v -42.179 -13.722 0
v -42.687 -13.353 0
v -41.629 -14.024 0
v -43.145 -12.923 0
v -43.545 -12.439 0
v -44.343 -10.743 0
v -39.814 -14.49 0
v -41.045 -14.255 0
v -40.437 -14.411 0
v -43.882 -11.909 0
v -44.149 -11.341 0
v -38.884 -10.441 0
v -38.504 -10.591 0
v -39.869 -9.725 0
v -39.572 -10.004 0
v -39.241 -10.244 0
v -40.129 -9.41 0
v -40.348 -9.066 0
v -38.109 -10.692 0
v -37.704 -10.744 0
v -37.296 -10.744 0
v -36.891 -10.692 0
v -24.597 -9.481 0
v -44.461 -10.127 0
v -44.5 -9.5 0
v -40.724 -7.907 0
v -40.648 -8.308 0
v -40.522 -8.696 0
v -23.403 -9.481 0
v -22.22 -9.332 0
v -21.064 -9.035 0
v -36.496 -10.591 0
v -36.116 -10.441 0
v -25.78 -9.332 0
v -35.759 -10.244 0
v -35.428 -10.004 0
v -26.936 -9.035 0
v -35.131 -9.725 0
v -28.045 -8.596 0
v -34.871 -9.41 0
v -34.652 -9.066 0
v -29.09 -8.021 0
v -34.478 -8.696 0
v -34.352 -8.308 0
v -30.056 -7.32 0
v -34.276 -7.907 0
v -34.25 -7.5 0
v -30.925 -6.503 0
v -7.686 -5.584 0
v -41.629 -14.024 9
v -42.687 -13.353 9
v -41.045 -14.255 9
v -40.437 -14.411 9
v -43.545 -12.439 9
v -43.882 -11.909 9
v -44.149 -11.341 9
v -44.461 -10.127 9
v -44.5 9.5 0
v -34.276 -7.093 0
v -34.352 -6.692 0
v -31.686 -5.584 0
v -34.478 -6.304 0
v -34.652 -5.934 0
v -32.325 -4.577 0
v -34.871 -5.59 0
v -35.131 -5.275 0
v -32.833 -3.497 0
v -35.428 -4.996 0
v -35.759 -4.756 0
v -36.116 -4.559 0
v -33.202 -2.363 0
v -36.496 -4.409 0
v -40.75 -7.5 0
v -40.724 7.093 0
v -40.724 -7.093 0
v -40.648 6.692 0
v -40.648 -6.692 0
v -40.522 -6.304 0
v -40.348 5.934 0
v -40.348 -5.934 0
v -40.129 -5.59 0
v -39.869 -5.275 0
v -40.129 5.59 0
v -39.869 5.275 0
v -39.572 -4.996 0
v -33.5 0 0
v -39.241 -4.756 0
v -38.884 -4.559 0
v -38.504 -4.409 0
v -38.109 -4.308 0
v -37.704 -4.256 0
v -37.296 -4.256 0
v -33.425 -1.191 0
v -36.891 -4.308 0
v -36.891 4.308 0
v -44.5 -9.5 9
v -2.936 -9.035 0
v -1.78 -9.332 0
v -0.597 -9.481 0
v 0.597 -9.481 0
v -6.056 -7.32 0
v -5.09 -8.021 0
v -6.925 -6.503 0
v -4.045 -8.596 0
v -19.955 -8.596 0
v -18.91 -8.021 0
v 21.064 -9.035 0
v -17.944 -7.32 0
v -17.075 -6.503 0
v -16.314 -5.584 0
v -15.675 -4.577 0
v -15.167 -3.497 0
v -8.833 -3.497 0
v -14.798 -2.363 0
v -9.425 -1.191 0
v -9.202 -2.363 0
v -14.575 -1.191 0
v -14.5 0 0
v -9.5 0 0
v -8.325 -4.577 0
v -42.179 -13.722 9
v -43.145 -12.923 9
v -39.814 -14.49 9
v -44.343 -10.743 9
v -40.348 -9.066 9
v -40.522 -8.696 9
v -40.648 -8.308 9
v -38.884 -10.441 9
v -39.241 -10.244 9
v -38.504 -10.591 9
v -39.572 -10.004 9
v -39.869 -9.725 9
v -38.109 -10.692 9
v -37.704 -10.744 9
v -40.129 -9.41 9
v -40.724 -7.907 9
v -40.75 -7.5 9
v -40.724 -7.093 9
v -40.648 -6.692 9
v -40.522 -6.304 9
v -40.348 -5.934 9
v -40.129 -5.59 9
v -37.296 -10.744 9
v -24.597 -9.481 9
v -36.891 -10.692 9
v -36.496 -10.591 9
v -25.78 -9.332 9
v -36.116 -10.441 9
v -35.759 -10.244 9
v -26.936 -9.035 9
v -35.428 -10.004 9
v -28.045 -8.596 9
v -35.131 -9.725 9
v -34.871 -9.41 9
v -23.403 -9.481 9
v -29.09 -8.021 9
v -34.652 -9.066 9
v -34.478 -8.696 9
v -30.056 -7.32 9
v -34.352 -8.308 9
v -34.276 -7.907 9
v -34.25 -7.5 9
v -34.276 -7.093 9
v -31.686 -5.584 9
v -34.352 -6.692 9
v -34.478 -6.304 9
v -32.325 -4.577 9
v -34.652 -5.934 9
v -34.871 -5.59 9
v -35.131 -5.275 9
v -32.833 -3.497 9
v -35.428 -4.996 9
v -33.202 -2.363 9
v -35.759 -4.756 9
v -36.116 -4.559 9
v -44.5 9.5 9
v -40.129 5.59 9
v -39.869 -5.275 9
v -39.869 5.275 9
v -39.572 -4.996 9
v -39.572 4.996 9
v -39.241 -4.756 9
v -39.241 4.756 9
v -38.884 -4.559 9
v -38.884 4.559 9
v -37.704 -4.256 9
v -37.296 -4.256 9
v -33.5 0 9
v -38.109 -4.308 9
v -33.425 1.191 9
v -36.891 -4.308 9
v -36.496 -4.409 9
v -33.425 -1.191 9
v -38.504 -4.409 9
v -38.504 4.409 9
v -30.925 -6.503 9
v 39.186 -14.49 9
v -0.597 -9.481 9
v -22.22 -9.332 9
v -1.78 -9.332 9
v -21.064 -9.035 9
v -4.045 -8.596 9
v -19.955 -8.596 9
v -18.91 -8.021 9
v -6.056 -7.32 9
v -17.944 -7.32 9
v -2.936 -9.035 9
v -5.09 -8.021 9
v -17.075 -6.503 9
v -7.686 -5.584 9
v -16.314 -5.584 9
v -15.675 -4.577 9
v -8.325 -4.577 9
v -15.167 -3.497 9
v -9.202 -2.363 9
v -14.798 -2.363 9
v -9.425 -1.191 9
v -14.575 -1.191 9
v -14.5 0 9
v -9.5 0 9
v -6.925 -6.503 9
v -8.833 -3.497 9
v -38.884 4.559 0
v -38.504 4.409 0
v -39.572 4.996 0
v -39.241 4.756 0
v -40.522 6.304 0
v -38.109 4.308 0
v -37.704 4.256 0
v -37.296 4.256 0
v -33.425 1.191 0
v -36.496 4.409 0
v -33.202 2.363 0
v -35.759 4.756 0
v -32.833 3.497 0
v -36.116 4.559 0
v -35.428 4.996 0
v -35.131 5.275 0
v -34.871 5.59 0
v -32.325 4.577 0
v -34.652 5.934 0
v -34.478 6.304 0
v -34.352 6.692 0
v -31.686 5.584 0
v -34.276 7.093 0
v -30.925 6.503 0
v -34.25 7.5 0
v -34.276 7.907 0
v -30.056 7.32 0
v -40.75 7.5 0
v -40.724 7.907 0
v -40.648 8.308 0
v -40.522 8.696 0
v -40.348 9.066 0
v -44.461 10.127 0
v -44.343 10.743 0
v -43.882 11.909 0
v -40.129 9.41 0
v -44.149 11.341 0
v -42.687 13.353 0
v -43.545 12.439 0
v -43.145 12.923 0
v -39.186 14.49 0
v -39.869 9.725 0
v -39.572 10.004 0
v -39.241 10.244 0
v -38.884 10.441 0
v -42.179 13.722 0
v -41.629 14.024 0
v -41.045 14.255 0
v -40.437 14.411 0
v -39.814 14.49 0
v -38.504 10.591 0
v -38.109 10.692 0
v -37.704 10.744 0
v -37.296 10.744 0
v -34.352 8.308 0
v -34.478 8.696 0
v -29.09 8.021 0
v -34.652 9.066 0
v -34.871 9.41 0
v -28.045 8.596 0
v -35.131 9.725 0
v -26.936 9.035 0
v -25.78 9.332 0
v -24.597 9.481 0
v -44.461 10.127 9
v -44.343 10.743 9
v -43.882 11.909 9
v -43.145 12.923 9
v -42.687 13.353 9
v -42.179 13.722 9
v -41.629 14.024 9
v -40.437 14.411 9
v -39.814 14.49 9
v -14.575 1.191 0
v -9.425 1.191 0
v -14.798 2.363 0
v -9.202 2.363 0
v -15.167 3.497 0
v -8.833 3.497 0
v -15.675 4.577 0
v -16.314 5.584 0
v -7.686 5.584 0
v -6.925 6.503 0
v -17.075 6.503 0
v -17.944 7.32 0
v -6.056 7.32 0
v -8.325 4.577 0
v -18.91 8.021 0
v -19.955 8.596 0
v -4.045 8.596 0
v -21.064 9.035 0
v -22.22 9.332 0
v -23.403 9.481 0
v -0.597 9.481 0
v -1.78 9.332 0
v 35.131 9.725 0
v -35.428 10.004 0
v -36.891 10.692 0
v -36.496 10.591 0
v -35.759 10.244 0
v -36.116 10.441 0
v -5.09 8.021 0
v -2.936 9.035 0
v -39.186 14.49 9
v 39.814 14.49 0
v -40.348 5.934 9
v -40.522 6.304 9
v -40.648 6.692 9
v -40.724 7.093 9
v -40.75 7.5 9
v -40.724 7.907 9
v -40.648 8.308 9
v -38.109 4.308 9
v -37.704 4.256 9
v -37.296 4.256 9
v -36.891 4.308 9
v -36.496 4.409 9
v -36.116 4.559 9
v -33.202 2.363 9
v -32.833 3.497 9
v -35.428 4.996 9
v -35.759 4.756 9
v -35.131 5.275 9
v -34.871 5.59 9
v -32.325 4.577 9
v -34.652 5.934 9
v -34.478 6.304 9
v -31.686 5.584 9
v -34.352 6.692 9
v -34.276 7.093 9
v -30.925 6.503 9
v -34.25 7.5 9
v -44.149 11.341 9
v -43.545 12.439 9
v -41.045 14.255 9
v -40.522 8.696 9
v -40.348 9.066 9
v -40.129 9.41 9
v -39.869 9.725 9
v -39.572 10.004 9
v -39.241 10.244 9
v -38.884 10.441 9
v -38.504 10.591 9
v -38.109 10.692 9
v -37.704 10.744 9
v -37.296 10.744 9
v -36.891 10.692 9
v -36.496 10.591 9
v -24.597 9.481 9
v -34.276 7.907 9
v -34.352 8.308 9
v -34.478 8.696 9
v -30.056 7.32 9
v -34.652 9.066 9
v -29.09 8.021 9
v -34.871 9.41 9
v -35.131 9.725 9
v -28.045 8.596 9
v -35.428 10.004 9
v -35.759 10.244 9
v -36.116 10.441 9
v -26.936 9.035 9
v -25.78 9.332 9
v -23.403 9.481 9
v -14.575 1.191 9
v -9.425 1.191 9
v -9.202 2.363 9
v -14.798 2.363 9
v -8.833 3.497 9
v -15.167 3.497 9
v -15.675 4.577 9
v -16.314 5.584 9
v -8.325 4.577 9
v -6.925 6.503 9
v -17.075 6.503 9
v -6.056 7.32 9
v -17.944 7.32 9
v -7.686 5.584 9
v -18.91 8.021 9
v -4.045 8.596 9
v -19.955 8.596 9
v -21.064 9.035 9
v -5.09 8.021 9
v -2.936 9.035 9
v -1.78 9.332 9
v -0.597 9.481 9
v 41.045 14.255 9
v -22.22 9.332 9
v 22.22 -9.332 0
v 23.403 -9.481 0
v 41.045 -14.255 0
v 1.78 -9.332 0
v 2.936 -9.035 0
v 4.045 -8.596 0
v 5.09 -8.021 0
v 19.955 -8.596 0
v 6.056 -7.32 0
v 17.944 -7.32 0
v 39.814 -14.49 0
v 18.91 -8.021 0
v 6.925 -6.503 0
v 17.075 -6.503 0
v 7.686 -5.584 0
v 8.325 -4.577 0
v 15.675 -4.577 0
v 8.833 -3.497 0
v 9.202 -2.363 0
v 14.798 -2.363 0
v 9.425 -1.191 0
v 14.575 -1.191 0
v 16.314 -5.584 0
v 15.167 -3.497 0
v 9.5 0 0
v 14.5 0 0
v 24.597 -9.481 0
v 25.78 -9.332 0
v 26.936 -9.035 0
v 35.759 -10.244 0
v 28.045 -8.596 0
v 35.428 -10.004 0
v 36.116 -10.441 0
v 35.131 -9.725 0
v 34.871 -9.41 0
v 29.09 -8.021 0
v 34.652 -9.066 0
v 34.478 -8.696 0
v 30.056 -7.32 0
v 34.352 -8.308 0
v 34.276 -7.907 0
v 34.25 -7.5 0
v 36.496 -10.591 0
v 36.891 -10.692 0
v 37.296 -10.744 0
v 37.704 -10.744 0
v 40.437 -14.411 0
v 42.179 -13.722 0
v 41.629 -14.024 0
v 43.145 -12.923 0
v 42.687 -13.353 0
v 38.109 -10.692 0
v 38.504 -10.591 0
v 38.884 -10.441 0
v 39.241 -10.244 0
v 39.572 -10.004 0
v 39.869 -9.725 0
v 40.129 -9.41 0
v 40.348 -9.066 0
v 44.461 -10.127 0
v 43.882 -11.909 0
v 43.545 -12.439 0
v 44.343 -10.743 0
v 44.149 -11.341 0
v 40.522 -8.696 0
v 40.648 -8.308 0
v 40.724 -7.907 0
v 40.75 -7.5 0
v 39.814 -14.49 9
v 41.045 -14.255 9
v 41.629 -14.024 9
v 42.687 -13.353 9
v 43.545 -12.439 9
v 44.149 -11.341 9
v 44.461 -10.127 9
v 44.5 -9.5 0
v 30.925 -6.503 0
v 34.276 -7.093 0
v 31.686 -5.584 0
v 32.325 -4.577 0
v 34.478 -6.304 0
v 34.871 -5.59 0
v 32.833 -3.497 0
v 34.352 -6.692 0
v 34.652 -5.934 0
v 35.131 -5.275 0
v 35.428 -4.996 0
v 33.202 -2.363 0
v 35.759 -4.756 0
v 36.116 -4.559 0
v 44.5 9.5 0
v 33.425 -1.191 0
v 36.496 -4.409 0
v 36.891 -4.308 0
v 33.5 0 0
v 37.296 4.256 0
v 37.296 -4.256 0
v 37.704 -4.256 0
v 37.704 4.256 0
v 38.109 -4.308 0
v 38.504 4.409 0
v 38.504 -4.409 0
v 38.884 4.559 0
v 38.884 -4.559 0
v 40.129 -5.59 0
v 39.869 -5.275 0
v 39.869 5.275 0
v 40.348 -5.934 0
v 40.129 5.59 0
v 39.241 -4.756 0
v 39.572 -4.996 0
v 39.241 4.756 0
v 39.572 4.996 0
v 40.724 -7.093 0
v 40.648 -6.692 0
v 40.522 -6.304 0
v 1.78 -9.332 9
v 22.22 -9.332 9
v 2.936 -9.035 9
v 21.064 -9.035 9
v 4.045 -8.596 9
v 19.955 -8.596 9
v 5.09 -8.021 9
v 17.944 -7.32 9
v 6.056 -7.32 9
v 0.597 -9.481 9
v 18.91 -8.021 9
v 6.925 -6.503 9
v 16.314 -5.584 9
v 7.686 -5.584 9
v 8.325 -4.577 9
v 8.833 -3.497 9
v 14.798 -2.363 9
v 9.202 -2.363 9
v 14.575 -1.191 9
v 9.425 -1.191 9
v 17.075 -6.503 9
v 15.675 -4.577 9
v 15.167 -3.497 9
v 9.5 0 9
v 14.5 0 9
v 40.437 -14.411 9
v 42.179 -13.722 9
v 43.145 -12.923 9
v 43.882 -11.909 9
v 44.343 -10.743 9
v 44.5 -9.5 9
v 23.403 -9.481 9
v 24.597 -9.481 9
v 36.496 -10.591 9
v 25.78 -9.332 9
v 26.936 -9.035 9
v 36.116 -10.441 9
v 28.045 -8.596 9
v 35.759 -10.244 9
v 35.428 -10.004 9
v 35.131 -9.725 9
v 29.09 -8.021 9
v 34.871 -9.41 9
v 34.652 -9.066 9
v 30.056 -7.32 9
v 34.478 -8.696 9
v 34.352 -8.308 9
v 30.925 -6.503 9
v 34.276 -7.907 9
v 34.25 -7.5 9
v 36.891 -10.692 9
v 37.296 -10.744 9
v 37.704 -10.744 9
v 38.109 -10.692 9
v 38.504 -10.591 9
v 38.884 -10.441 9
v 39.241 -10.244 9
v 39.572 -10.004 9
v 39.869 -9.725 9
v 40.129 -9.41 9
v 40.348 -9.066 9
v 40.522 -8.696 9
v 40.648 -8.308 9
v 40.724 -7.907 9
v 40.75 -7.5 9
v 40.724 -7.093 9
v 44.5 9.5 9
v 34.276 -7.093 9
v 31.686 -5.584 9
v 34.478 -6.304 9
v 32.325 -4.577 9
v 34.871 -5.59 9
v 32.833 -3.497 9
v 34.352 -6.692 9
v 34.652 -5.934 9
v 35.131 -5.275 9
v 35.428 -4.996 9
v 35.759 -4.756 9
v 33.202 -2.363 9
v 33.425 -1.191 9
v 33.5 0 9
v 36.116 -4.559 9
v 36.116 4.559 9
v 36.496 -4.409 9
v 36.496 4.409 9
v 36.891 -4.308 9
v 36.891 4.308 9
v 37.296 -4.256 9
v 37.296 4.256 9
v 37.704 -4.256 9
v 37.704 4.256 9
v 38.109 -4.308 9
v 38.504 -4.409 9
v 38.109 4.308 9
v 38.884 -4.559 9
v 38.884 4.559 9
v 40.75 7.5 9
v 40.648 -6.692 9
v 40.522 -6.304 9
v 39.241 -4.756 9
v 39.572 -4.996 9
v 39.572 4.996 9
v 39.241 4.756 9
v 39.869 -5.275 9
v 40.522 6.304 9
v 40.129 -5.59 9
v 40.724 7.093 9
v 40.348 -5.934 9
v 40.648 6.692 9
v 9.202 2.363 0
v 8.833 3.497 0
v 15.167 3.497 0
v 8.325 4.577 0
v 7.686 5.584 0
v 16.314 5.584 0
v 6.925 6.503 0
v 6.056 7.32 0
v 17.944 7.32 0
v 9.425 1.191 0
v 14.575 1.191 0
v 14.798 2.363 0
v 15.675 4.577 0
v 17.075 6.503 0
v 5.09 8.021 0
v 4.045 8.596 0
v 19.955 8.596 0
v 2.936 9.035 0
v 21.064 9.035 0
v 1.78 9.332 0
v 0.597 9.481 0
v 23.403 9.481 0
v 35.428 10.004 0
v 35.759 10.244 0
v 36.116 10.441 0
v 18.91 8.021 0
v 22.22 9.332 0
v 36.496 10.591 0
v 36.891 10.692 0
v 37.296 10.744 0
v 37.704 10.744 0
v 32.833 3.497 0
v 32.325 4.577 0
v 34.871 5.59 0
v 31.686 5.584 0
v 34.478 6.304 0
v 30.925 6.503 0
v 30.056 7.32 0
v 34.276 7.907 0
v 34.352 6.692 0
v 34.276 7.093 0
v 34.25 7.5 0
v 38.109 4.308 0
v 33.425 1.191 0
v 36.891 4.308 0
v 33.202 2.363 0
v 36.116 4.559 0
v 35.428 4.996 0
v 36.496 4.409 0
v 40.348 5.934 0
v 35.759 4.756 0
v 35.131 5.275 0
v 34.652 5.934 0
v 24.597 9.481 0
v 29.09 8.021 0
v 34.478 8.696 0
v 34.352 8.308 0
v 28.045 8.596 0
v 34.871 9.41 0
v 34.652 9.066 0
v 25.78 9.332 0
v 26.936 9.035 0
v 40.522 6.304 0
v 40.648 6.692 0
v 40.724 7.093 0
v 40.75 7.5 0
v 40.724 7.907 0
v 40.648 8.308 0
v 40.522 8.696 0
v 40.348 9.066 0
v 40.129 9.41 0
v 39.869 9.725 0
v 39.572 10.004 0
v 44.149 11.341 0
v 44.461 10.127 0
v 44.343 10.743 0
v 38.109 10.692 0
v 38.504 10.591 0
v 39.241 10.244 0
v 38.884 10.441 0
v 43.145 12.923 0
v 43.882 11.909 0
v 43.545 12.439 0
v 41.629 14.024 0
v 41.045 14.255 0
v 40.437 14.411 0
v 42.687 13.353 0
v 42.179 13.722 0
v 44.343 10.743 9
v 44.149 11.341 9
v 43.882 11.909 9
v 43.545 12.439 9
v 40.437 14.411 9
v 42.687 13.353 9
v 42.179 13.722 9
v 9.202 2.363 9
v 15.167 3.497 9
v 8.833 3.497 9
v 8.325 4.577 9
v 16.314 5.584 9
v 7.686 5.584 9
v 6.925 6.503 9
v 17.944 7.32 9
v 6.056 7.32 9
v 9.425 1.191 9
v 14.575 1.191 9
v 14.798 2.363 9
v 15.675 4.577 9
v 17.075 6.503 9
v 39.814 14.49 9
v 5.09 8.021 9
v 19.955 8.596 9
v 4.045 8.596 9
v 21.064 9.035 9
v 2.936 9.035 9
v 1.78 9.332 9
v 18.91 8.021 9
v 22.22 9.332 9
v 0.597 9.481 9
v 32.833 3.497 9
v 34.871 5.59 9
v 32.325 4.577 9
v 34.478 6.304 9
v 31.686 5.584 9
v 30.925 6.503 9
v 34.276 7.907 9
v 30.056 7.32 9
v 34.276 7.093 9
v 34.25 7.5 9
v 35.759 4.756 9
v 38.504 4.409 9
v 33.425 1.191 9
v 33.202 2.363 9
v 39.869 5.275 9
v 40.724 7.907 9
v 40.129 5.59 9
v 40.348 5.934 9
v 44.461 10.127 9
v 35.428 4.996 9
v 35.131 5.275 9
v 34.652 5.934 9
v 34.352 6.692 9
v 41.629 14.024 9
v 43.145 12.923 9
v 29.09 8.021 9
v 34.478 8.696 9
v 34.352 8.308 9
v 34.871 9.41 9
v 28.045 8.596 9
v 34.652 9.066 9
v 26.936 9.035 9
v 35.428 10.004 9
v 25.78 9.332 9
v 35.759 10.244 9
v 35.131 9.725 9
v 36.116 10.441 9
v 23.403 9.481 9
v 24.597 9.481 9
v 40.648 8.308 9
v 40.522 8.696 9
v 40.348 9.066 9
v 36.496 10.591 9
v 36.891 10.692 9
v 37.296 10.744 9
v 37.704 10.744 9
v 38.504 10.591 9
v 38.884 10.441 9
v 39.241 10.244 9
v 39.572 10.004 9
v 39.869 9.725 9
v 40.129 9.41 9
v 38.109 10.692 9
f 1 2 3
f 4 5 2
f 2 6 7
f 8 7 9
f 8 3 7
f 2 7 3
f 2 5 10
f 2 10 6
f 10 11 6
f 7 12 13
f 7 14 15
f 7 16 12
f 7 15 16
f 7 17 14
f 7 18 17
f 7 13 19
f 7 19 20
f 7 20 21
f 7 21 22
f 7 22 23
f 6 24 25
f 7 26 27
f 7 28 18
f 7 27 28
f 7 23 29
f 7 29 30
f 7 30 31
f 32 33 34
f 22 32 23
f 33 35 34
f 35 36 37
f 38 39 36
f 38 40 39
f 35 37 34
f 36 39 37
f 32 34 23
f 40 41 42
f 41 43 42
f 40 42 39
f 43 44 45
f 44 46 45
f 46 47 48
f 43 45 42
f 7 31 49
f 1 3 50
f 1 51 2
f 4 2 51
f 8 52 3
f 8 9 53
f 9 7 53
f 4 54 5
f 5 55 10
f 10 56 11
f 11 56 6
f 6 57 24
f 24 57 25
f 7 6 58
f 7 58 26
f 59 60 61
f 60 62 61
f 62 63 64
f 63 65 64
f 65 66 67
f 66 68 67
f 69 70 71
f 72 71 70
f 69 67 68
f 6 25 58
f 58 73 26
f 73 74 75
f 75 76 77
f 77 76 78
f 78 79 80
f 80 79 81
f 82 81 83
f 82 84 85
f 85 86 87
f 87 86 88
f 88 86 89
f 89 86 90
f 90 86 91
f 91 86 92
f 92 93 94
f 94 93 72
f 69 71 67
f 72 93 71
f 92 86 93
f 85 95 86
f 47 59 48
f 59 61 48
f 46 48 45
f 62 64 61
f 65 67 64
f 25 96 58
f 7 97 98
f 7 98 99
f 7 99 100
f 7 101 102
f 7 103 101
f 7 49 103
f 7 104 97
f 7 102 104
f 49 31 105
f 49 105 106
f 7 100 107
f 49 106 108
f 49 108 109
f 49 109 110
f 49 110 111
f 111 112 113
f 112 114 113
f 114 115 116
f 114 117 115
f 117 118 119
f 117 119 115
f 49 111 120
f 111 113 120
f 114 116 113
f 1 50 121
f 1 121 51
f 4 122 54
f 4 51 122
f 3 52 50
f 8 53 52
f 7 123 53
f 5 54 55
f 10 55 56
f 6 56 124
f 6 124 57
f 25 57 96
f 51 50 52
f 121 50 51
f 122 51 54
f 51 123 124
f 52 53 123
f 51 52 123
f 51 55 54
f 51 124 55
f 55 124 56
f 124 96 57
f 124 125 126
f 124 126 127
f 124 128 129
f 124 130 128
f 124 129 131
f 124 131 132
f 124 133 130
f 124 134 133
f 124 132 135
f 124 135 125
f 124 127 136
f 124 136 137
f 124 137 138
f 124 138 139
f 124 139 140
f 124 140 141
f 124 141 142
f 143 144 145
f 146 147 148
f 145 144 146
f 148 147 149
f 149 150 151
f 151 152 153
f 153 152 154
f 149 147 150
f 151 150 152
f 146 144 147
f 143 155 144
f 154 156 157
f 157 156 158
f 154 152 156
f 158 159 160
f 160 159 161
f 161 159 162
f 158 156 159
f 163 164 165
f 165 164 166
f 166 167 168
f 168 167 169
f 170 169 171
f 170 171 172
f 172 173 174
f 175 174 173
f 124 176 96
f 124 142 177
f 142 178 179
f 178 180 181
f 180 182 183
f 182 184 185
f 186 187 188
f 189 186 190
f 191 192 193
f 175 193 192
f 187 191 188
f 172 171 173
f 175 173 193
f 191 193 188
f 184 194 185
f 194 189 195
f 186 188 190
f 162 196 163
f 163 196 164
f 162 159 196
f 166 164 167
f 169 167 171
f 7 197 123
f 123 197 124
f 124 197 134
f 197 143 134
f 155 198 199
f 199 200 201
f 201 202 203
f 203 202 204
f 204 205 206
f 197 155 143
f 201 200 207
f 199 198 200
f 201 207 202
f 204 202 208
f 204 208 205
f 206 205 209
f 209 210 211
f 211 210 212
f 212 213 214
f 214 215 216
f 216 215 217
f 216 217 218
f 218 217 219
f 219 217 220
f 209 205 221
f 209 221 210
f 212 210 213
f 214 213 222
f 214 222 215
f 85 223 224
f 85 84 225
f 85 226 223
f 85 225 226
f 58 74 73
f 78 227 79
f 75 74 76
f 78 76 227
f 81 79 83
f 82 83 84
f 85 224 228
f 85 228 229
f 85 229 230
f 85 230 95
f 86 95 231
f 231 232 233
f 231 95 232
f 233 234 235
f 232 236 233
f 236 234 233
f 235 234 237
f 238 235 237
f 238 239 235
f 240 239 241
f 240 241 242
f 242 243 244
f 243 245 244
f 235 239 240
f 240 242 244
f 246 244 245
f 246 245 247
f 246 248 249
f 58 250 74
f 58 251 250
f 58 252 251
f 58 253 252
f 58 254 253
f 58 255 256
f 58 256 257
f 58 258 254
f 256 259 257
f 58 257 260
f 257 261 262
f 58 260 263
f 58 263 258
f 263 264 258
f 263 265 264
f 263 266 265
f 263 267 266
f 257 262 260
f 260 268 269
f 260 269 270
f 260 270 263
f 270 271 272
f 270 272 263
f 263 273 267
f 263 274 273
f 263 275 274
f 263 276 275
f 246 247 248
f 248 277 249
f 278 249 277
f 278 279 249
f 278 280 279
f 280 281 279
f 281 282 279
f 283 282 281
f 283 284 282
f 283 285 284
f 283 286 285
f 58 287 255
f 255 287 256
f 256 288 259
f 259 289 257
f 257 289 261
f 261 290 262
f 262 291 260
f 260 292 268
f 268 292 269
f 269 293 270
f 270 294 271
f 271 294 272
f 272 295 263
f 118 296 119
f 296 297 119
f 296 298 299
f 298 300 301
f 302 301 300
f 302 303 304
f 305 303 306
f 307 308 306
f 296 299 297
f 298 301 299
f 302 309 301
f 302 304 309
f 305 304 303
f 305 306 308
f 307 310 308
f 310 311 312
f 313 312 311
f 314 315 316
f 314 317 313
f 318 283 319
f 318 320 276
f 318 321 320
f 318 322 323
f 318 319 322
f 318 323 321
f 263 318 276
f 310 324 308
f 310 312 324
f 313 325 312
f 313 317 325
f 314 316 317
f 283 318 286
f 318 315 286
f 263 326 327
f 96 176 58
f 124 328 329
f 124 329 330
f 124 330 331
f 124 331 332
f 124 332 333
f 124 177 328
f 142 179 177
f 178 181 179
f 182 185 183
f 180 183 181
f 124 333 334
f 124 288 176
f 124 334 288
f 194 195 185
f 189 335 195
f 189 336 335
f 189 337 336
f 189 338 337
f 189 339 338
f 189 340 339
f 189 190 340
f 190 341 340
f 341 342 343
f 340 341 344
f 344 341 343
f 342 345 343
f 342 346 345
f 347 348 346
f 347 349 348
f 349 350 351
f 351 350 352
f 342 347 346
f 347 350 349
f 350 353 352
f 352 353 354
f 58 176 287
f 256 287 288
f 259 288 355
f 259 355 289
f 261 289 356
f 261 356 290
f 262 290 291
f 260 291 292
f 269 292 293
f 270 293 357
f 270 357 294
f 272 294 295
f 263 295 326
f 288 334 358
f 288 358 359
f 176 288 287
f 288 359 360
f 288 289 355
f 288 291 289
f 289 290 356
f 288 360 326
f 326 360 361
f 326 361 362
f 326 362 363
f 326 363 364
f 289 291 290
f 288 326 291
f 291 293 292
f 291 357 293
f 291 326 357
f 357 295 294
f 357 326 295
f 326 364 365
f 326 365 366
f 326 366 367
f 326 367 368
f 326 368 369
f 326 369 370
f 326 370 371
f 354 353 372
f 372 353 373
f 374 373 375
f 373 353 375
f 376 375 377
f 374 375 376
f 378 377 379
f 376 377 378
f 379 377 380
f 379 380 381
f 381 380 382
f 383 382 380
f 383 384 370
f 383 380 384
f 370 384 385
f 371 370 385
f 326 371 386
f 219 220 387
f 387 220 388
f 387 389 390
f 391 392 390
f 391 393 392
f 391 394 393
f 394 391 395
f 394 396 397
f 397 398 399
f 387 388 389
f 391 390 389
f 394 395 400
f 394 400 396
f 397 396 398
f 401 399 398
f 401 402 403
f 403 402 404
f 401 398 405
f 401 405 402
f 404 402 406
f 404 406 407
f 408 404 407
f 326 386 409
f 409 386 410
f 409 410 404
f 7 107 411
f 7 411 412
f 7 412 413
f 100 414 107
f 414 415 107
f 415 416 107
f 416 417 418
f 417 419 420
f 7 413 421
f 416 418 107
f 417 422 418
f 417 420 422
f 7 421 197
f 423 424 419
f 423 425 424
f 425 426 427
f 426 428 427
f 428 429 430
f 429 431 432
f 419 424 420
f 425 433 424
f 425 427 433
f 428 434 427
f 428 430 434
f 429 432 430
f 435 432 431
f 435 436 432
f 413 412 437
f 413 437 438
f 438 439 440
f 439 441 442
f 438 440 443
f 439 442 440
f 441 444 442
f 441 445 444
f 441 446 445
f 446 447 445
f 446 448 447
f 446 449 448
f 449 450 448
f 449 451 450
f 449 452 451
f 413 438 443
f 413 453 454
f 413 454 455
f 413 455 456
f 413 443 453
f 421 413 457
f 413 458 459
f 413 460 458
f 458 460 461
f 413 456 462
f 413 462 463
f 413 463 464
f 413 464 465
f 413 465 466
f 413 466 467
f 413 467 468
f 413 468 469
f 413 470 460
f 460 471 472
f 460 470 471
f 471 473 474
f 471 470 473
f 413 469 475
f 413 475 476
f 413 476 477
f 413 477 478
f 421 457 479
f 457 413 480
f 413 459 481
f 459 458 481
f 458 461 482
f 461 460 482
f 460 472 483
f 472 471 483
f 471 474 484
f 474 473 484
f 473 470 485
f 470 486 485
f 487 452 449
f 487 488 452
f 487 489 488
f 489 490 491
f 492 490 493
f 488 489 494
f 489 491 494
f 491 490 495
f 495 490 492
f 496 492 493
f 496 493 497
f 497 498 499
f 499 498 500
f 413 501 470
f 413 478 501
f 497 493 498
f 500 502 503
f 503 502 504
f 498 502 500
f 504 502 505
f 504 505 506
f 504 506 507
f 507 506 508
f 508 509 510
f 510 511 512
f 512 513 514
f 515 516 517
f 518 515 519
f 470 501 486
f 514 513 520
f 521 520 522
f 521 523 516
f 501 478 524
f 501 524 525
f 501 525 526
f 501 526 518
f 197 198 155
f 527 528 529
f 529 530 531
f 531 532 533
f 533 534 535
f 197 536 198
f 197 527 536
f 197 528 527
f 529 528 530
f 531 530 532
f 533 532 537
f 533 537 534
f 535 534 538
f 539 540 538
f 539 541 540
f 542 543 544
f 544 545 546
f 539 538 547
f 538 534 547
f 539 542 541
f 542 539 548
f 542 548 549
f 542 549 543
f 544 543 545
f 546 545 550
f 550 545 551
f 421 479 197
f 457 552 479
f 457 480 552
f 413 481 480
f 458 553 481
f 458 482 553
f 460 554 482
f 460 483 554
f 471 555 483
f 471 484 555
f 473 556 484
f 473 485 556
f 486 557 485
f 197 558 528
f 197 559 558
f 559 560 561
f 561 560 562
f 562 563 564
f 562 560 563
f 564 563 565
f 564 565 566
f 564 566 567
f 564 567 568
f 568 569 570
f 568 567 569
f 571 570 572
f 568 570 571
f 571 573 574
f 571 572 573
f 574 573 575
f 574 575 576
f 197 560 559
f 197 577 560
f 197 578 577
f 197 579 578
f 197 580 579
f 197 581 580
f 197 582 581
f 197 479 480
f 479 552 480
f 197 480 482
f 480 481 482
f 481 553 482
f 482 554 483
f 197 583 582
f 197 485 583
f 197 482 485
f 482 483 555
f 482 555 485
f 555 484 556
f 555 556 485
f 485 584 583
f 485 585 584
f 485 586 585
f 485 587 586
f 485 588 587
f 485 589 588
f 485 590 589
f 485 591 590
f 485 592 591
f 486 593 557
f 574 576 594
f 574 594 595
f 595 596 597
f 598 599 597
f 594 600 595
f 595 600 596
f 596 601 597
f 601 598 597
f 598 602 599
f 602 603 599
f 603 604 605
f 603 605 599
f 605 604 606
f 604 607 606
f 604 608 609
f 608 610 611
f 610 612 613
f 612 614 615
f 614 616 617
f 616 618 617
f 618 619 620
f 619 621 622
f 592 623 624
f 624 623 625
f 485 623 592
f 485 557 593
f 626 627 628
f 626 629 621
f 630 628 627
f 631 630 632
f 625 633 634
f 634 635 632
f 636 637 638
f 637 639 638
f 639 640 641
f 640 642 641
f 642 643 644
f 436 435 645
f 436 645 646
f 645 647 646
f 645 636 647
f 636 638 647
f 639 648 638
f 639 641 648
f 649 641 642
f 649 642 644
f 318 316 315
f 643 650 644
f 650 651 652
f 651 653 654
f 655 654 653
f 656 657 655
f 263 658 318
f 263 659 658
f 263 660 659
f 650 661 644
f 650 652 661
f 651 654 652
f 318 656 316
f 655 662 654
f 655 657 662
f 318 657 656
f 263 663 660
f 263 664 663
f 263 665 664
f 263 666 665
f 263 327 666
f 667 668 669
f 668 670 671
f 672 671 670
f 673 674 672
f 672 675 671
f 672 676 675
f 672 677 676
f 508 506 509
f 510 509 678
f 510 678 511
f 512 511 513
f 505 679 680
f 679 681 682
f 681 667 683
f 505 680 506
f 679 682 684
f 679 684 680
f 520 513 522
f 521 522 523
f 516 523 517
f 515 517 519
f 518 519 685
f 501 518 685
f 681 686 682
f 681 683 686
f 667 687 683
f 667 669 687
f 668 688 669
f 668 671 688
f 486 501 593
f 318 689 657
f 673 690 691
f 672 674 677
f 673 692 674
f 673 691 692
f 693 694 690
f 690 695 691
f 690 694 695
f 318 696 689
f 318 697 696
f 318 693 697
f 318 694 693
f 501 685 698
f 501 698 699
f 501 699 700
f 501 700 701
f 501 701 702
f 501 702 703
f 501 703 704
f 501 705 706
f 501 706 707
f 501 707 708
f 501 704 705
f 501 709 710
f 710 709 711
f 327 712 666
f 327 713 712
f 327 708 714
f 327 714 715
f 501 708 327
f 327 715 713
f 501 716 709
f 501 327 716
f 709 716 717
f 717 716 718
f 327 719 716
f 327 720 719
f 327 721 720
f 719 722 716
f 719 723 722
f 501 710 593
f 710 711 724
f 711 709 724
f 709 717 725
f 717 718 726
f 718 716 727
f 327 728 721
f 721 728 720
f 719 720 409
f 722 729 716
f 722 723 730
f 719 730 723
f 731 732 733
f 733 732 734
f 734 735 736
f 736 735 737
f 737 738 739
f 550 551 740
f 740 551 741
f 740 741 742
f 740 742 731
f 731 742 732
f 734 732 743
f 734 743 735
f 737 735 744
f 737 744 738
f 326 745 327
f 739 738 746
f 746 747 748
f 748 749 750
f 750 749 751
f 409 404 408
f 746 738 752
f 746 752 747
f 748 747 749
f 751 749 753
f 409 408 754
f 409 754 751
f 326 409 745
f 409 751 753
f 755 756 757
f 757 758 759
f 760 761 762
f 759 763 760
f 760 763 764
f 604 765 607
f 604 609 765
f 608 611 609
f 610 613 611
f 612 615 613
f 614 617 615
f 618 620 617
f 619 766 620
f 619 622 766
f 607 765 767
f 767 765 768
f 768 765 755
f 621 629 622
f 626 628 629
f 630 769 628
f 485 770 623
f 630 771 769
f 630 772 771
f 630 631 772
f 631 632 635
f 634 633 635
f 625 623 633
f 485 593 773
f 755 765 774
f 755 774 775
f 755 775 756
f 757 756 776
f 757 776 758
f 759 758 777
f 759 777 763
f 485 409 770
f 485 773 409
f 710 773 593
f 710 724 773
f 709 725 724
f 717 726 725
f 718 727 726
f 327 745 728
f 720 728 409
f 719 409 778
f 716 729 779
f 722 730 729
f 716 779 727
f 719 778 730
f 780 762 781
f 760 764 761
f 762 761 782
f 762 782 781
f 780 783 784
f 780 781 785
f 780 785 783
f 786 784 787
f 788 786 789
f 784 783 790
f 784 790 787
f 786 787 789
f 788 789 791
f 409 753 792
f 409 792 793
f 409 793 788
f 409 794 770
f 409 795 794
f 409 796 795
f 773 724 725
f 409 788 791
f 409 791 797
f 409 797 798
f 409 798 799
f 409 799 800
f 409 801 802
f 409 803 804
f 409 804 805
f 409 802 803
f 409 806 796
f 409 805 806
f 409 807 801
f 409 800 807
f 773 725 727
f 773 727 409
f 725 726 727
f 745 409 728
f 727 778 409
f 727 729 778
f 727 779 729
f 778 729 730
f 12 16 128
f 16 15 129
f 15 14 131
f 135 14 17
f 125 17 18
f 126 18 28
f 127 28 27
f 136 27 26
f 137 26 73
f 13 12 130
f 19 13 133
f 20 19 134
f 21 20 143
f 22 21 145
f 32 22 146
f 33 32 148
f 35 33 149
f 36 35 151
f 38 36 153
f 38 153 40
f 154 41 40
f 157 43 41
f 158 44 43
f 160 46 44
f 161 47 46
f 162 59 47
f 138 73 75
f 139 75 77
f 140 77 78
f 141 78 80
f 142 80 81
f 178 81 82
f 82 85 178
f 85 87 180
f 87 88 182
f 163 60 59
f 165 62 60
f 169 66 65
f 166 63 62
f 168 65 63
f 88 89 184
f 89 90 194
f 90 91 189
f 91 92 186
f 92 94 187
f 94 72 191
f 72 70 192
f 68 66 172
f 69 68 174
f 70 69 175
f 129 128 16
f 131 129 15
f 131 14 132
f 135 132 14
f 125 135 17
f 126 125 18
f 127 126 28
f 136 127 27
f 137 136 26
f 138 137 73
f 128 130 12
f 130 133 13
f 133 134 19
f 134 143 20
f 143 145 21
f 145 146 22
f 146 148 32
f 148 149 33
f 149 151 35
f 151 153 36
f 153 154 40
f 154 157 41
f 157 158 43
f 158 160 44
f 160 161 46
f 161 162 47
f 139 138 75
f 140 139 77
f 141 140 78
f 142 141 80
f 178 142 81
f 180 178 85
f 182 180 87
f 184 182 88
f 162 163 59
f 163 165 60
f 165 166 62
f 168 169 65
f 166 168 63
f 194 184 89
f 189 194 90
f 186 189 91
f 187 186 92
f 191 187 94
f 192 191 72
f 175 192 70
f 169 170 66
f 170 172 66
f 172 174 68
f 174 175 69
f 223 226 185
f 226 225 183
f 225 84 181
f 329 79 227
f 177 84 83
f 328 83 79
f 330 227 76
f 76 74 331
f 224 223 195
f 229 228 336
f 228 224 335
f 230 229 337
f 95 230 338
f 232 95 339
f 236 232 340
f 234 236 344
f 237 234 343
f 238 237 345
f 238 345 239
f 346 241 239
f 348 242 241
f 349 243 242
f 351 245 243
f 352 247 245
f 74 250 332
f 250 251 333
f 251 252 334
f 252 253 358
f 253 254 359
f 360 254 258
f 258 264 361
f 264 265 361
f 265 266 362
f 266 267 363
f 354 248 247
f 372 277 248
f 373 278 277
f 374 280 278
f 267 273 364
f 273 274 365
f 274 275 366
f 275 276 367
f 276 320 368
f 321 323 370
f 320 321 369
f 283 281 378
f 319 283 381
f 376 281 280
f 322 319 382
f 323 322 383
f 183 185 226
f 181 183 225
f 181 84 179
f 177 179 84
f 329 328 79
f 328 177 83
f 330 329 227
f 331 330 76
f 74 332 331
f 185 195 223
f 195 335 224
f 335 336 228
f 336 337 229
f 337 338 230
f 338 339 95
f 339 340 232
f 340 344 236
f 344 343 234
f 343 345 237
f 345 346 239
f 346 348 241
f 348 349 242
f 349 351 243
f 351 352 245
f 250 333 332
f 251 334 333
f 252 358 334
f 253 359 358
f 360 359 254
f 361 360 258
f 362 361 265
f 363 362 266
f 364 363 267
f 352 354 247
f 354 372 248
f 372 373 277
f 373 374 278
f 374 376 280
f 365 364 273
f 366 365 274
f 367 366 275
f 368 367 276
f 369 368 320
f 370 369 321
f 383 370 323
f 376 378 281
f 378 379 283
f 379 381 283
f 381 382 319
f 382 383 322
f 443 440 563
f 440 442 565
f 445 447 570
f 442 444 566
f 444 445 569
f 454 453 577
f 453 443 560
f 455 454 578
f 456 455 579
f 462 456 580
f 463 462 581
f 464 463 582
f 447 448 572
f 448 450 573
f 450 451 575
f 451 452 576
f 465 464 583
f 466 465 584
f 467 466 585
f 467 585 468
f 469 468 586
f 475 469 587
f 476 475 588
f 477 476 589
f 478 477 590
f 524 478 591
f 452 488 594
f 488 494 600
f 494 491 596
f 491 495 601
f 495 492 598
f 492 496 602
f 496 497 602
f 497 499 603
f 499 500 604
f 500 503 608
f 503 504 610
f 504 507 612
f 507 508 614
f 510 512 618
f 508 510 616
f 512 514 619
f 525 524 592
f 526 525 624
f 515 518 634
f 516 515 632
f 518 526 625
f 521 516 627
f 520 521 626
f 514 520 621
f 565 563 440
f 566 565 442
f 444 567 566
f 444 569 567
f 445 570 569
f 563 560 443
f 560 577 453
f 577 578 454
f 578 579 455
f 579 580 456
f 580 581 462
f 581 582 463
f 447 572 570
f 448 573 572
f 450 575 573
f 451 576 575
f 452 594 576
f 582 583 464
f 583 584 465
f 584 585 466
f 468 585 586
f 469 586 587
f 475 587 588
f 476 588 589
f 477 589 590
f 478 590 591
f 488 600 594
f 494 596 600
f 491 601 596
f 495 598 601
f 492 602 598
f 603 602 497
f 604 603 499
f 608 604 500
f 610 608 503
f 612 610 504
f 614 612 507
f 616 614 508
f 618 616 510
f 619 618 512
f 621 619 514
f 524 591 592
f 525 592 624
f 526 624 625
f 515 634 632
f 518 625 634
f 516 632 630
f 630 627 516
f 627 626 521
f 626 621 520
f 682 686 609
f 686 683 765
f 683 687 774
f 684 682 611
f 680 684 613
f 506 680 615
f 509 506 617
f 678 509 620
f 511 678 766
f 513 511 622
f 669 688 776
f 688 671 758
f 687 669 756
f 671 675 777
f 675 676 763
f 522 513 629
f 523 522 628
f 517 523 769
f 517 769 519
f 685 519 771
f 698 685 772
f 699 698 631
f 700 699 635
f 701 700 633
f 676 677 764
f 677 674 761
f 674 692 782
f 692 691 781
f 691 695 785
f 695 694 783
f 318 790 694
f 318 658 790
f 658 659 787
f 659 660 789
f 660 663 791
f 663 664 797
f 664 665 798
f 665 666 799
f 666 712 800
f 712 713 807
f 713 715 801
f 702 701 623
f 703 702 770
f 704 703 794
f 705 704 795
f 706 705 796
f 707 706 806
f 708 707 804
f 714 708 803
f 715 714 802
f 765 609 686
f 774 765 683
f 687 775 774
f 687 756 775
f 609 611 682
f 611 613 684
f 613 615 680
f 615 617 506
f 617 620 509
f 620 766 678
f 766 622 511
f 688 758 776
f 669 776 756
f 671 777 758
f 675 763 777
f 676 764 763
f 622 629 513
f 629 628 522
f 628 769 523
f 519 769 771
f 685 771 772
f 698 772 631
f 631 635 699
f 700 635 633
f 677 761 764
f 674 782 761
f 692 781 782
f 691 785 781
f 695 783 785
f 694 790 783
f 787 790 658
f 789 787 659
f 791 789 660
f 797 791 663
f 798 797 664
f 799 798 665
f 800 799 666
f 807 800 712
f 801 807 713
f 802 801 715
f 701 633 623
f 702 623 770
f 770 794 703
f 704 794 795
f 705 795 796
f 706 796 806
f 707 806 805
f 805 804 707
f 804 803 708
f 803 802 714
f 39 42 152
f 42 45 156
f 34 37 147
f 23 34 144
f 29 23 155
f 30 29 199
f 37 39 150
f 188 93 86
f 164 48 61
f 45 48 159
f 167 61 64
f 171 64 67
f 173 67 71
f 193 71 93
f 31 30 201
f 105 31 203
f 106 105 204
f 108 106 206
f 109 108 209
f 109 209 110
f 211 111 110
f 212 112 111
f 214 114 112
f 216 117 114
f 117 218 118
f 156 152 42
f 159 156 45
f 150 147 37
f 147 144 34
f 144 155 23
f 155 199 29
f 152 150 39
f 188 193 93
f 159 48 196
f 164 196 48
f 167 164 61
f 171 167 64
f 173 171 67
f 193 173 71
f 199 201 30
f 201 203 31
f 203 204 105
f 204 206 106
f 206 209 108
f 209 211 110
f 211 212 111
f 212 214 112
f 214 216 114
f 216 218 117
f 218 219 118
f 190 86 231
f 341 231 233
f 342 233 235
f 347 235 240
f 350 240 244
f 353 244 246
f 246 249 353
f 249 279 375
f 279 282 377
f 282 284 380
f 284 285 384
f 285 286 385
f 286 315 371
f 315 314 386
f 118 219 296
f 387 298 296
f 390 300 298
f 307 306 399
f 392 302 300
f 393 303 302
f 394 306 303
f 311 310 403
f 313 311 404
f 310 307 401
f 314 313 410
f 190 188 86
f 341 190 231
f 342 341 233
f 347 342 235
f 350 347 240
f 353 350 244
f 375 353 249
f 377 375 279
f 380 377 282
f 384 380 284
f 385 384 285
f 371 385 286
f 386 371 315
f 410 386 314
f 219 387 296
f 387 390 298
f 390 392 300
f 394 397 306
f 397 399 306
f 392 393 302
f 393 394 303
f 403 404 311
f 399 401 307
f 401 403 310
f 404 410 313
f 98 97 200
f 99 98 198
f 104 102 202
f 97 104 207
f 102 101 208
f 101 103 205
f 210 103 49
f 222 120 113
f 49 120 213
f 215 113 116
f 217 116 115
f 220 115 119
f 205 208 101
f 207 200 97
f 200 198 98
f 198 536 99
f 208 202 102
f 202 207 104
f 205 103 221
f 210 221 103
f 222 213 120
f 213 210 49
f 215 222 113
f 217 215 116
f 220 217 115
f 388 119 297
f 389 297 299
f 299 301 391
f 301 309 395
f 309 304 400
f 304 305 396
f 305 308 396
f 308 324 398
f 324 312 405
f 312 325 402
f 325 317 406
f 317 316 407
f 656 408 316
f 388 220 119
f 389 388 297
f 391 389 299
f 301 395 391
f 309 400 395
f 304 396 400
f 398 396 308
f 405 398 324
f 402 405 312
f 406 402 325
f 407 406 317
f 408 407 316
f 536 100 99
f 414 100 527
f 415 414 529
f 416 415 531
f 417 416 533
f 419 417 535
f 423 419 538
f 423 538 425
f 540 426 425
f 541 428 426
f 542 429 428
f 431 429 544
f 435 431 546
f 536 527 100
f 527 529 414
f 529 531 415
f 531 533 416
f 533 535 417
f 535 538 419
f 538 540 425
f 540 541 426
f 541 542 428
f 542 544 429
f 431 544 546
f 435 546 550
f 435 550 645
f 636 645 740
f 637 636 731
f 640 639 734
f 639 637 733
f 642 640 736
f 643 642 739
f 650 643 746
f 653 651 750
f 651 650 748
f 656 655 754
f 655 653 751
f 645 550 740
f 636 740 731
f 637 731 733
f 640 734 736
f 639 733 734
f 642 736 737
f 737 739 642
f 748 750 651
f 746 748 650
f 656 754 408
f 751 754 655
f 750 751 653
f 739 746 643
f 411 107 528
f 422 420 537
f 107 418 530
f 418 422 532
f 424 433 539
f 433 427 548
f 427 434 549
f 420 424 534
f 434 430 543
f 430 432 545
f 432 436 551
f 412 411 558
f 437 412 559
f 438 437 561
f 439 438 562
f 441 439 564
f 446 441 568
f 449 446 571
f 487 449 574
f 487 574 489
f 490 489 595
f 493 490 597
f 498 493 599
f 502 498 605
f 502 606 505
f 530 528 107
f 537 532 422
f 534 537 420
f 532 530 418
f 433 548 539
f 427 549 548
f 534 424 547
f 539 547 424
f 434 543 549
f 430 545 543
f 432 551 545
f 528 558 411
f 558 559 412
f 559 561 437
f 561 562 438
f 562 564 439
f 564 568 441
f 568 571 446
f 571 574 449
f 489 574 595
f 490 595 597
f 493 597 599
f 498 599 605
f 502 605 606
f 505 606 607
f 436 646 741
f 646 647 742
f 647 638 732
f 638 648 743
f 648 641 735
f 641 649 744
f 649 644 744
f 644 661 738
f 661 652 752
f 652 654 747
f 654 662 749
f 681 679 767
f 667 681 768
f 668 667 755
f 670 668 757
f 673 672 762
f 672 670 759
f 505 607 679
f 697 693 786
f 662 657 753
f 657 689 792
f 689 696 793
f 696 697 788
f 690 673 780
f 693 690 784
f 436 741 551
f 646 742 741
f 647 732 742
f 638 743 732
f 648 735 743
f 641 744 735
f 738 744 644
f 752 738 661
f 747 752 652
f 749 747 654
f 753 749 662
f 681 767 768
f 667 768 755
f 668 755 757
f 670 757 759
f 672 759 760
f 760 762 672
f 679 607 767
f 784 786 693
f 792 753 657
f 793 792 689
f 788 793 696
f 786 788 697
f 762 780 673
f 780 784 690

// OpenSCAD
$fn = 50;

difference() {
	union() {
		hull() {
			translate(v = [-39.5, 9.5, 0]) {
				cylinder(h = 9, r = 5);
			}
			translate(v = [39.5, 9.5, 0]) {
				cylinder(h = 9, r = 5);
			}
			translate(v = [-39.5, -9.5, 0]) {
				cylinder(h = 9, r = 5);
			}
			translate(v = [39.5, -9.5, 0]) {
				cylinder(h = 9, r = 5);
			}
		}
	}
	union() {
		translate(v = [-37.5, -7.5, 0]) {
			cylinder(h = 9, r = 3.25);
		}
		translate(v = [-37.5, 7.5, 0]) {
			cylinder(h = 9, r = 3.25);
		}
		translate(v = [37.5, -7.5, 0]) {
			cylinder(h = 9, r = 3.25);
		}
		translate(v = [37.5, 7.5, 0]) {
			cylinder(h = 9, r = 3.25);
		}
		translate(v = [-24.0, 0, 0.0]) {
			cylinder(h = 9, r = 9.5);
		}
		cylinder(h = 9, r = 9.5);
		translate(v = [24.0, 0, 0.0]) {
			cylinder(h = 9, r = 9.5);
		}
	}
}
